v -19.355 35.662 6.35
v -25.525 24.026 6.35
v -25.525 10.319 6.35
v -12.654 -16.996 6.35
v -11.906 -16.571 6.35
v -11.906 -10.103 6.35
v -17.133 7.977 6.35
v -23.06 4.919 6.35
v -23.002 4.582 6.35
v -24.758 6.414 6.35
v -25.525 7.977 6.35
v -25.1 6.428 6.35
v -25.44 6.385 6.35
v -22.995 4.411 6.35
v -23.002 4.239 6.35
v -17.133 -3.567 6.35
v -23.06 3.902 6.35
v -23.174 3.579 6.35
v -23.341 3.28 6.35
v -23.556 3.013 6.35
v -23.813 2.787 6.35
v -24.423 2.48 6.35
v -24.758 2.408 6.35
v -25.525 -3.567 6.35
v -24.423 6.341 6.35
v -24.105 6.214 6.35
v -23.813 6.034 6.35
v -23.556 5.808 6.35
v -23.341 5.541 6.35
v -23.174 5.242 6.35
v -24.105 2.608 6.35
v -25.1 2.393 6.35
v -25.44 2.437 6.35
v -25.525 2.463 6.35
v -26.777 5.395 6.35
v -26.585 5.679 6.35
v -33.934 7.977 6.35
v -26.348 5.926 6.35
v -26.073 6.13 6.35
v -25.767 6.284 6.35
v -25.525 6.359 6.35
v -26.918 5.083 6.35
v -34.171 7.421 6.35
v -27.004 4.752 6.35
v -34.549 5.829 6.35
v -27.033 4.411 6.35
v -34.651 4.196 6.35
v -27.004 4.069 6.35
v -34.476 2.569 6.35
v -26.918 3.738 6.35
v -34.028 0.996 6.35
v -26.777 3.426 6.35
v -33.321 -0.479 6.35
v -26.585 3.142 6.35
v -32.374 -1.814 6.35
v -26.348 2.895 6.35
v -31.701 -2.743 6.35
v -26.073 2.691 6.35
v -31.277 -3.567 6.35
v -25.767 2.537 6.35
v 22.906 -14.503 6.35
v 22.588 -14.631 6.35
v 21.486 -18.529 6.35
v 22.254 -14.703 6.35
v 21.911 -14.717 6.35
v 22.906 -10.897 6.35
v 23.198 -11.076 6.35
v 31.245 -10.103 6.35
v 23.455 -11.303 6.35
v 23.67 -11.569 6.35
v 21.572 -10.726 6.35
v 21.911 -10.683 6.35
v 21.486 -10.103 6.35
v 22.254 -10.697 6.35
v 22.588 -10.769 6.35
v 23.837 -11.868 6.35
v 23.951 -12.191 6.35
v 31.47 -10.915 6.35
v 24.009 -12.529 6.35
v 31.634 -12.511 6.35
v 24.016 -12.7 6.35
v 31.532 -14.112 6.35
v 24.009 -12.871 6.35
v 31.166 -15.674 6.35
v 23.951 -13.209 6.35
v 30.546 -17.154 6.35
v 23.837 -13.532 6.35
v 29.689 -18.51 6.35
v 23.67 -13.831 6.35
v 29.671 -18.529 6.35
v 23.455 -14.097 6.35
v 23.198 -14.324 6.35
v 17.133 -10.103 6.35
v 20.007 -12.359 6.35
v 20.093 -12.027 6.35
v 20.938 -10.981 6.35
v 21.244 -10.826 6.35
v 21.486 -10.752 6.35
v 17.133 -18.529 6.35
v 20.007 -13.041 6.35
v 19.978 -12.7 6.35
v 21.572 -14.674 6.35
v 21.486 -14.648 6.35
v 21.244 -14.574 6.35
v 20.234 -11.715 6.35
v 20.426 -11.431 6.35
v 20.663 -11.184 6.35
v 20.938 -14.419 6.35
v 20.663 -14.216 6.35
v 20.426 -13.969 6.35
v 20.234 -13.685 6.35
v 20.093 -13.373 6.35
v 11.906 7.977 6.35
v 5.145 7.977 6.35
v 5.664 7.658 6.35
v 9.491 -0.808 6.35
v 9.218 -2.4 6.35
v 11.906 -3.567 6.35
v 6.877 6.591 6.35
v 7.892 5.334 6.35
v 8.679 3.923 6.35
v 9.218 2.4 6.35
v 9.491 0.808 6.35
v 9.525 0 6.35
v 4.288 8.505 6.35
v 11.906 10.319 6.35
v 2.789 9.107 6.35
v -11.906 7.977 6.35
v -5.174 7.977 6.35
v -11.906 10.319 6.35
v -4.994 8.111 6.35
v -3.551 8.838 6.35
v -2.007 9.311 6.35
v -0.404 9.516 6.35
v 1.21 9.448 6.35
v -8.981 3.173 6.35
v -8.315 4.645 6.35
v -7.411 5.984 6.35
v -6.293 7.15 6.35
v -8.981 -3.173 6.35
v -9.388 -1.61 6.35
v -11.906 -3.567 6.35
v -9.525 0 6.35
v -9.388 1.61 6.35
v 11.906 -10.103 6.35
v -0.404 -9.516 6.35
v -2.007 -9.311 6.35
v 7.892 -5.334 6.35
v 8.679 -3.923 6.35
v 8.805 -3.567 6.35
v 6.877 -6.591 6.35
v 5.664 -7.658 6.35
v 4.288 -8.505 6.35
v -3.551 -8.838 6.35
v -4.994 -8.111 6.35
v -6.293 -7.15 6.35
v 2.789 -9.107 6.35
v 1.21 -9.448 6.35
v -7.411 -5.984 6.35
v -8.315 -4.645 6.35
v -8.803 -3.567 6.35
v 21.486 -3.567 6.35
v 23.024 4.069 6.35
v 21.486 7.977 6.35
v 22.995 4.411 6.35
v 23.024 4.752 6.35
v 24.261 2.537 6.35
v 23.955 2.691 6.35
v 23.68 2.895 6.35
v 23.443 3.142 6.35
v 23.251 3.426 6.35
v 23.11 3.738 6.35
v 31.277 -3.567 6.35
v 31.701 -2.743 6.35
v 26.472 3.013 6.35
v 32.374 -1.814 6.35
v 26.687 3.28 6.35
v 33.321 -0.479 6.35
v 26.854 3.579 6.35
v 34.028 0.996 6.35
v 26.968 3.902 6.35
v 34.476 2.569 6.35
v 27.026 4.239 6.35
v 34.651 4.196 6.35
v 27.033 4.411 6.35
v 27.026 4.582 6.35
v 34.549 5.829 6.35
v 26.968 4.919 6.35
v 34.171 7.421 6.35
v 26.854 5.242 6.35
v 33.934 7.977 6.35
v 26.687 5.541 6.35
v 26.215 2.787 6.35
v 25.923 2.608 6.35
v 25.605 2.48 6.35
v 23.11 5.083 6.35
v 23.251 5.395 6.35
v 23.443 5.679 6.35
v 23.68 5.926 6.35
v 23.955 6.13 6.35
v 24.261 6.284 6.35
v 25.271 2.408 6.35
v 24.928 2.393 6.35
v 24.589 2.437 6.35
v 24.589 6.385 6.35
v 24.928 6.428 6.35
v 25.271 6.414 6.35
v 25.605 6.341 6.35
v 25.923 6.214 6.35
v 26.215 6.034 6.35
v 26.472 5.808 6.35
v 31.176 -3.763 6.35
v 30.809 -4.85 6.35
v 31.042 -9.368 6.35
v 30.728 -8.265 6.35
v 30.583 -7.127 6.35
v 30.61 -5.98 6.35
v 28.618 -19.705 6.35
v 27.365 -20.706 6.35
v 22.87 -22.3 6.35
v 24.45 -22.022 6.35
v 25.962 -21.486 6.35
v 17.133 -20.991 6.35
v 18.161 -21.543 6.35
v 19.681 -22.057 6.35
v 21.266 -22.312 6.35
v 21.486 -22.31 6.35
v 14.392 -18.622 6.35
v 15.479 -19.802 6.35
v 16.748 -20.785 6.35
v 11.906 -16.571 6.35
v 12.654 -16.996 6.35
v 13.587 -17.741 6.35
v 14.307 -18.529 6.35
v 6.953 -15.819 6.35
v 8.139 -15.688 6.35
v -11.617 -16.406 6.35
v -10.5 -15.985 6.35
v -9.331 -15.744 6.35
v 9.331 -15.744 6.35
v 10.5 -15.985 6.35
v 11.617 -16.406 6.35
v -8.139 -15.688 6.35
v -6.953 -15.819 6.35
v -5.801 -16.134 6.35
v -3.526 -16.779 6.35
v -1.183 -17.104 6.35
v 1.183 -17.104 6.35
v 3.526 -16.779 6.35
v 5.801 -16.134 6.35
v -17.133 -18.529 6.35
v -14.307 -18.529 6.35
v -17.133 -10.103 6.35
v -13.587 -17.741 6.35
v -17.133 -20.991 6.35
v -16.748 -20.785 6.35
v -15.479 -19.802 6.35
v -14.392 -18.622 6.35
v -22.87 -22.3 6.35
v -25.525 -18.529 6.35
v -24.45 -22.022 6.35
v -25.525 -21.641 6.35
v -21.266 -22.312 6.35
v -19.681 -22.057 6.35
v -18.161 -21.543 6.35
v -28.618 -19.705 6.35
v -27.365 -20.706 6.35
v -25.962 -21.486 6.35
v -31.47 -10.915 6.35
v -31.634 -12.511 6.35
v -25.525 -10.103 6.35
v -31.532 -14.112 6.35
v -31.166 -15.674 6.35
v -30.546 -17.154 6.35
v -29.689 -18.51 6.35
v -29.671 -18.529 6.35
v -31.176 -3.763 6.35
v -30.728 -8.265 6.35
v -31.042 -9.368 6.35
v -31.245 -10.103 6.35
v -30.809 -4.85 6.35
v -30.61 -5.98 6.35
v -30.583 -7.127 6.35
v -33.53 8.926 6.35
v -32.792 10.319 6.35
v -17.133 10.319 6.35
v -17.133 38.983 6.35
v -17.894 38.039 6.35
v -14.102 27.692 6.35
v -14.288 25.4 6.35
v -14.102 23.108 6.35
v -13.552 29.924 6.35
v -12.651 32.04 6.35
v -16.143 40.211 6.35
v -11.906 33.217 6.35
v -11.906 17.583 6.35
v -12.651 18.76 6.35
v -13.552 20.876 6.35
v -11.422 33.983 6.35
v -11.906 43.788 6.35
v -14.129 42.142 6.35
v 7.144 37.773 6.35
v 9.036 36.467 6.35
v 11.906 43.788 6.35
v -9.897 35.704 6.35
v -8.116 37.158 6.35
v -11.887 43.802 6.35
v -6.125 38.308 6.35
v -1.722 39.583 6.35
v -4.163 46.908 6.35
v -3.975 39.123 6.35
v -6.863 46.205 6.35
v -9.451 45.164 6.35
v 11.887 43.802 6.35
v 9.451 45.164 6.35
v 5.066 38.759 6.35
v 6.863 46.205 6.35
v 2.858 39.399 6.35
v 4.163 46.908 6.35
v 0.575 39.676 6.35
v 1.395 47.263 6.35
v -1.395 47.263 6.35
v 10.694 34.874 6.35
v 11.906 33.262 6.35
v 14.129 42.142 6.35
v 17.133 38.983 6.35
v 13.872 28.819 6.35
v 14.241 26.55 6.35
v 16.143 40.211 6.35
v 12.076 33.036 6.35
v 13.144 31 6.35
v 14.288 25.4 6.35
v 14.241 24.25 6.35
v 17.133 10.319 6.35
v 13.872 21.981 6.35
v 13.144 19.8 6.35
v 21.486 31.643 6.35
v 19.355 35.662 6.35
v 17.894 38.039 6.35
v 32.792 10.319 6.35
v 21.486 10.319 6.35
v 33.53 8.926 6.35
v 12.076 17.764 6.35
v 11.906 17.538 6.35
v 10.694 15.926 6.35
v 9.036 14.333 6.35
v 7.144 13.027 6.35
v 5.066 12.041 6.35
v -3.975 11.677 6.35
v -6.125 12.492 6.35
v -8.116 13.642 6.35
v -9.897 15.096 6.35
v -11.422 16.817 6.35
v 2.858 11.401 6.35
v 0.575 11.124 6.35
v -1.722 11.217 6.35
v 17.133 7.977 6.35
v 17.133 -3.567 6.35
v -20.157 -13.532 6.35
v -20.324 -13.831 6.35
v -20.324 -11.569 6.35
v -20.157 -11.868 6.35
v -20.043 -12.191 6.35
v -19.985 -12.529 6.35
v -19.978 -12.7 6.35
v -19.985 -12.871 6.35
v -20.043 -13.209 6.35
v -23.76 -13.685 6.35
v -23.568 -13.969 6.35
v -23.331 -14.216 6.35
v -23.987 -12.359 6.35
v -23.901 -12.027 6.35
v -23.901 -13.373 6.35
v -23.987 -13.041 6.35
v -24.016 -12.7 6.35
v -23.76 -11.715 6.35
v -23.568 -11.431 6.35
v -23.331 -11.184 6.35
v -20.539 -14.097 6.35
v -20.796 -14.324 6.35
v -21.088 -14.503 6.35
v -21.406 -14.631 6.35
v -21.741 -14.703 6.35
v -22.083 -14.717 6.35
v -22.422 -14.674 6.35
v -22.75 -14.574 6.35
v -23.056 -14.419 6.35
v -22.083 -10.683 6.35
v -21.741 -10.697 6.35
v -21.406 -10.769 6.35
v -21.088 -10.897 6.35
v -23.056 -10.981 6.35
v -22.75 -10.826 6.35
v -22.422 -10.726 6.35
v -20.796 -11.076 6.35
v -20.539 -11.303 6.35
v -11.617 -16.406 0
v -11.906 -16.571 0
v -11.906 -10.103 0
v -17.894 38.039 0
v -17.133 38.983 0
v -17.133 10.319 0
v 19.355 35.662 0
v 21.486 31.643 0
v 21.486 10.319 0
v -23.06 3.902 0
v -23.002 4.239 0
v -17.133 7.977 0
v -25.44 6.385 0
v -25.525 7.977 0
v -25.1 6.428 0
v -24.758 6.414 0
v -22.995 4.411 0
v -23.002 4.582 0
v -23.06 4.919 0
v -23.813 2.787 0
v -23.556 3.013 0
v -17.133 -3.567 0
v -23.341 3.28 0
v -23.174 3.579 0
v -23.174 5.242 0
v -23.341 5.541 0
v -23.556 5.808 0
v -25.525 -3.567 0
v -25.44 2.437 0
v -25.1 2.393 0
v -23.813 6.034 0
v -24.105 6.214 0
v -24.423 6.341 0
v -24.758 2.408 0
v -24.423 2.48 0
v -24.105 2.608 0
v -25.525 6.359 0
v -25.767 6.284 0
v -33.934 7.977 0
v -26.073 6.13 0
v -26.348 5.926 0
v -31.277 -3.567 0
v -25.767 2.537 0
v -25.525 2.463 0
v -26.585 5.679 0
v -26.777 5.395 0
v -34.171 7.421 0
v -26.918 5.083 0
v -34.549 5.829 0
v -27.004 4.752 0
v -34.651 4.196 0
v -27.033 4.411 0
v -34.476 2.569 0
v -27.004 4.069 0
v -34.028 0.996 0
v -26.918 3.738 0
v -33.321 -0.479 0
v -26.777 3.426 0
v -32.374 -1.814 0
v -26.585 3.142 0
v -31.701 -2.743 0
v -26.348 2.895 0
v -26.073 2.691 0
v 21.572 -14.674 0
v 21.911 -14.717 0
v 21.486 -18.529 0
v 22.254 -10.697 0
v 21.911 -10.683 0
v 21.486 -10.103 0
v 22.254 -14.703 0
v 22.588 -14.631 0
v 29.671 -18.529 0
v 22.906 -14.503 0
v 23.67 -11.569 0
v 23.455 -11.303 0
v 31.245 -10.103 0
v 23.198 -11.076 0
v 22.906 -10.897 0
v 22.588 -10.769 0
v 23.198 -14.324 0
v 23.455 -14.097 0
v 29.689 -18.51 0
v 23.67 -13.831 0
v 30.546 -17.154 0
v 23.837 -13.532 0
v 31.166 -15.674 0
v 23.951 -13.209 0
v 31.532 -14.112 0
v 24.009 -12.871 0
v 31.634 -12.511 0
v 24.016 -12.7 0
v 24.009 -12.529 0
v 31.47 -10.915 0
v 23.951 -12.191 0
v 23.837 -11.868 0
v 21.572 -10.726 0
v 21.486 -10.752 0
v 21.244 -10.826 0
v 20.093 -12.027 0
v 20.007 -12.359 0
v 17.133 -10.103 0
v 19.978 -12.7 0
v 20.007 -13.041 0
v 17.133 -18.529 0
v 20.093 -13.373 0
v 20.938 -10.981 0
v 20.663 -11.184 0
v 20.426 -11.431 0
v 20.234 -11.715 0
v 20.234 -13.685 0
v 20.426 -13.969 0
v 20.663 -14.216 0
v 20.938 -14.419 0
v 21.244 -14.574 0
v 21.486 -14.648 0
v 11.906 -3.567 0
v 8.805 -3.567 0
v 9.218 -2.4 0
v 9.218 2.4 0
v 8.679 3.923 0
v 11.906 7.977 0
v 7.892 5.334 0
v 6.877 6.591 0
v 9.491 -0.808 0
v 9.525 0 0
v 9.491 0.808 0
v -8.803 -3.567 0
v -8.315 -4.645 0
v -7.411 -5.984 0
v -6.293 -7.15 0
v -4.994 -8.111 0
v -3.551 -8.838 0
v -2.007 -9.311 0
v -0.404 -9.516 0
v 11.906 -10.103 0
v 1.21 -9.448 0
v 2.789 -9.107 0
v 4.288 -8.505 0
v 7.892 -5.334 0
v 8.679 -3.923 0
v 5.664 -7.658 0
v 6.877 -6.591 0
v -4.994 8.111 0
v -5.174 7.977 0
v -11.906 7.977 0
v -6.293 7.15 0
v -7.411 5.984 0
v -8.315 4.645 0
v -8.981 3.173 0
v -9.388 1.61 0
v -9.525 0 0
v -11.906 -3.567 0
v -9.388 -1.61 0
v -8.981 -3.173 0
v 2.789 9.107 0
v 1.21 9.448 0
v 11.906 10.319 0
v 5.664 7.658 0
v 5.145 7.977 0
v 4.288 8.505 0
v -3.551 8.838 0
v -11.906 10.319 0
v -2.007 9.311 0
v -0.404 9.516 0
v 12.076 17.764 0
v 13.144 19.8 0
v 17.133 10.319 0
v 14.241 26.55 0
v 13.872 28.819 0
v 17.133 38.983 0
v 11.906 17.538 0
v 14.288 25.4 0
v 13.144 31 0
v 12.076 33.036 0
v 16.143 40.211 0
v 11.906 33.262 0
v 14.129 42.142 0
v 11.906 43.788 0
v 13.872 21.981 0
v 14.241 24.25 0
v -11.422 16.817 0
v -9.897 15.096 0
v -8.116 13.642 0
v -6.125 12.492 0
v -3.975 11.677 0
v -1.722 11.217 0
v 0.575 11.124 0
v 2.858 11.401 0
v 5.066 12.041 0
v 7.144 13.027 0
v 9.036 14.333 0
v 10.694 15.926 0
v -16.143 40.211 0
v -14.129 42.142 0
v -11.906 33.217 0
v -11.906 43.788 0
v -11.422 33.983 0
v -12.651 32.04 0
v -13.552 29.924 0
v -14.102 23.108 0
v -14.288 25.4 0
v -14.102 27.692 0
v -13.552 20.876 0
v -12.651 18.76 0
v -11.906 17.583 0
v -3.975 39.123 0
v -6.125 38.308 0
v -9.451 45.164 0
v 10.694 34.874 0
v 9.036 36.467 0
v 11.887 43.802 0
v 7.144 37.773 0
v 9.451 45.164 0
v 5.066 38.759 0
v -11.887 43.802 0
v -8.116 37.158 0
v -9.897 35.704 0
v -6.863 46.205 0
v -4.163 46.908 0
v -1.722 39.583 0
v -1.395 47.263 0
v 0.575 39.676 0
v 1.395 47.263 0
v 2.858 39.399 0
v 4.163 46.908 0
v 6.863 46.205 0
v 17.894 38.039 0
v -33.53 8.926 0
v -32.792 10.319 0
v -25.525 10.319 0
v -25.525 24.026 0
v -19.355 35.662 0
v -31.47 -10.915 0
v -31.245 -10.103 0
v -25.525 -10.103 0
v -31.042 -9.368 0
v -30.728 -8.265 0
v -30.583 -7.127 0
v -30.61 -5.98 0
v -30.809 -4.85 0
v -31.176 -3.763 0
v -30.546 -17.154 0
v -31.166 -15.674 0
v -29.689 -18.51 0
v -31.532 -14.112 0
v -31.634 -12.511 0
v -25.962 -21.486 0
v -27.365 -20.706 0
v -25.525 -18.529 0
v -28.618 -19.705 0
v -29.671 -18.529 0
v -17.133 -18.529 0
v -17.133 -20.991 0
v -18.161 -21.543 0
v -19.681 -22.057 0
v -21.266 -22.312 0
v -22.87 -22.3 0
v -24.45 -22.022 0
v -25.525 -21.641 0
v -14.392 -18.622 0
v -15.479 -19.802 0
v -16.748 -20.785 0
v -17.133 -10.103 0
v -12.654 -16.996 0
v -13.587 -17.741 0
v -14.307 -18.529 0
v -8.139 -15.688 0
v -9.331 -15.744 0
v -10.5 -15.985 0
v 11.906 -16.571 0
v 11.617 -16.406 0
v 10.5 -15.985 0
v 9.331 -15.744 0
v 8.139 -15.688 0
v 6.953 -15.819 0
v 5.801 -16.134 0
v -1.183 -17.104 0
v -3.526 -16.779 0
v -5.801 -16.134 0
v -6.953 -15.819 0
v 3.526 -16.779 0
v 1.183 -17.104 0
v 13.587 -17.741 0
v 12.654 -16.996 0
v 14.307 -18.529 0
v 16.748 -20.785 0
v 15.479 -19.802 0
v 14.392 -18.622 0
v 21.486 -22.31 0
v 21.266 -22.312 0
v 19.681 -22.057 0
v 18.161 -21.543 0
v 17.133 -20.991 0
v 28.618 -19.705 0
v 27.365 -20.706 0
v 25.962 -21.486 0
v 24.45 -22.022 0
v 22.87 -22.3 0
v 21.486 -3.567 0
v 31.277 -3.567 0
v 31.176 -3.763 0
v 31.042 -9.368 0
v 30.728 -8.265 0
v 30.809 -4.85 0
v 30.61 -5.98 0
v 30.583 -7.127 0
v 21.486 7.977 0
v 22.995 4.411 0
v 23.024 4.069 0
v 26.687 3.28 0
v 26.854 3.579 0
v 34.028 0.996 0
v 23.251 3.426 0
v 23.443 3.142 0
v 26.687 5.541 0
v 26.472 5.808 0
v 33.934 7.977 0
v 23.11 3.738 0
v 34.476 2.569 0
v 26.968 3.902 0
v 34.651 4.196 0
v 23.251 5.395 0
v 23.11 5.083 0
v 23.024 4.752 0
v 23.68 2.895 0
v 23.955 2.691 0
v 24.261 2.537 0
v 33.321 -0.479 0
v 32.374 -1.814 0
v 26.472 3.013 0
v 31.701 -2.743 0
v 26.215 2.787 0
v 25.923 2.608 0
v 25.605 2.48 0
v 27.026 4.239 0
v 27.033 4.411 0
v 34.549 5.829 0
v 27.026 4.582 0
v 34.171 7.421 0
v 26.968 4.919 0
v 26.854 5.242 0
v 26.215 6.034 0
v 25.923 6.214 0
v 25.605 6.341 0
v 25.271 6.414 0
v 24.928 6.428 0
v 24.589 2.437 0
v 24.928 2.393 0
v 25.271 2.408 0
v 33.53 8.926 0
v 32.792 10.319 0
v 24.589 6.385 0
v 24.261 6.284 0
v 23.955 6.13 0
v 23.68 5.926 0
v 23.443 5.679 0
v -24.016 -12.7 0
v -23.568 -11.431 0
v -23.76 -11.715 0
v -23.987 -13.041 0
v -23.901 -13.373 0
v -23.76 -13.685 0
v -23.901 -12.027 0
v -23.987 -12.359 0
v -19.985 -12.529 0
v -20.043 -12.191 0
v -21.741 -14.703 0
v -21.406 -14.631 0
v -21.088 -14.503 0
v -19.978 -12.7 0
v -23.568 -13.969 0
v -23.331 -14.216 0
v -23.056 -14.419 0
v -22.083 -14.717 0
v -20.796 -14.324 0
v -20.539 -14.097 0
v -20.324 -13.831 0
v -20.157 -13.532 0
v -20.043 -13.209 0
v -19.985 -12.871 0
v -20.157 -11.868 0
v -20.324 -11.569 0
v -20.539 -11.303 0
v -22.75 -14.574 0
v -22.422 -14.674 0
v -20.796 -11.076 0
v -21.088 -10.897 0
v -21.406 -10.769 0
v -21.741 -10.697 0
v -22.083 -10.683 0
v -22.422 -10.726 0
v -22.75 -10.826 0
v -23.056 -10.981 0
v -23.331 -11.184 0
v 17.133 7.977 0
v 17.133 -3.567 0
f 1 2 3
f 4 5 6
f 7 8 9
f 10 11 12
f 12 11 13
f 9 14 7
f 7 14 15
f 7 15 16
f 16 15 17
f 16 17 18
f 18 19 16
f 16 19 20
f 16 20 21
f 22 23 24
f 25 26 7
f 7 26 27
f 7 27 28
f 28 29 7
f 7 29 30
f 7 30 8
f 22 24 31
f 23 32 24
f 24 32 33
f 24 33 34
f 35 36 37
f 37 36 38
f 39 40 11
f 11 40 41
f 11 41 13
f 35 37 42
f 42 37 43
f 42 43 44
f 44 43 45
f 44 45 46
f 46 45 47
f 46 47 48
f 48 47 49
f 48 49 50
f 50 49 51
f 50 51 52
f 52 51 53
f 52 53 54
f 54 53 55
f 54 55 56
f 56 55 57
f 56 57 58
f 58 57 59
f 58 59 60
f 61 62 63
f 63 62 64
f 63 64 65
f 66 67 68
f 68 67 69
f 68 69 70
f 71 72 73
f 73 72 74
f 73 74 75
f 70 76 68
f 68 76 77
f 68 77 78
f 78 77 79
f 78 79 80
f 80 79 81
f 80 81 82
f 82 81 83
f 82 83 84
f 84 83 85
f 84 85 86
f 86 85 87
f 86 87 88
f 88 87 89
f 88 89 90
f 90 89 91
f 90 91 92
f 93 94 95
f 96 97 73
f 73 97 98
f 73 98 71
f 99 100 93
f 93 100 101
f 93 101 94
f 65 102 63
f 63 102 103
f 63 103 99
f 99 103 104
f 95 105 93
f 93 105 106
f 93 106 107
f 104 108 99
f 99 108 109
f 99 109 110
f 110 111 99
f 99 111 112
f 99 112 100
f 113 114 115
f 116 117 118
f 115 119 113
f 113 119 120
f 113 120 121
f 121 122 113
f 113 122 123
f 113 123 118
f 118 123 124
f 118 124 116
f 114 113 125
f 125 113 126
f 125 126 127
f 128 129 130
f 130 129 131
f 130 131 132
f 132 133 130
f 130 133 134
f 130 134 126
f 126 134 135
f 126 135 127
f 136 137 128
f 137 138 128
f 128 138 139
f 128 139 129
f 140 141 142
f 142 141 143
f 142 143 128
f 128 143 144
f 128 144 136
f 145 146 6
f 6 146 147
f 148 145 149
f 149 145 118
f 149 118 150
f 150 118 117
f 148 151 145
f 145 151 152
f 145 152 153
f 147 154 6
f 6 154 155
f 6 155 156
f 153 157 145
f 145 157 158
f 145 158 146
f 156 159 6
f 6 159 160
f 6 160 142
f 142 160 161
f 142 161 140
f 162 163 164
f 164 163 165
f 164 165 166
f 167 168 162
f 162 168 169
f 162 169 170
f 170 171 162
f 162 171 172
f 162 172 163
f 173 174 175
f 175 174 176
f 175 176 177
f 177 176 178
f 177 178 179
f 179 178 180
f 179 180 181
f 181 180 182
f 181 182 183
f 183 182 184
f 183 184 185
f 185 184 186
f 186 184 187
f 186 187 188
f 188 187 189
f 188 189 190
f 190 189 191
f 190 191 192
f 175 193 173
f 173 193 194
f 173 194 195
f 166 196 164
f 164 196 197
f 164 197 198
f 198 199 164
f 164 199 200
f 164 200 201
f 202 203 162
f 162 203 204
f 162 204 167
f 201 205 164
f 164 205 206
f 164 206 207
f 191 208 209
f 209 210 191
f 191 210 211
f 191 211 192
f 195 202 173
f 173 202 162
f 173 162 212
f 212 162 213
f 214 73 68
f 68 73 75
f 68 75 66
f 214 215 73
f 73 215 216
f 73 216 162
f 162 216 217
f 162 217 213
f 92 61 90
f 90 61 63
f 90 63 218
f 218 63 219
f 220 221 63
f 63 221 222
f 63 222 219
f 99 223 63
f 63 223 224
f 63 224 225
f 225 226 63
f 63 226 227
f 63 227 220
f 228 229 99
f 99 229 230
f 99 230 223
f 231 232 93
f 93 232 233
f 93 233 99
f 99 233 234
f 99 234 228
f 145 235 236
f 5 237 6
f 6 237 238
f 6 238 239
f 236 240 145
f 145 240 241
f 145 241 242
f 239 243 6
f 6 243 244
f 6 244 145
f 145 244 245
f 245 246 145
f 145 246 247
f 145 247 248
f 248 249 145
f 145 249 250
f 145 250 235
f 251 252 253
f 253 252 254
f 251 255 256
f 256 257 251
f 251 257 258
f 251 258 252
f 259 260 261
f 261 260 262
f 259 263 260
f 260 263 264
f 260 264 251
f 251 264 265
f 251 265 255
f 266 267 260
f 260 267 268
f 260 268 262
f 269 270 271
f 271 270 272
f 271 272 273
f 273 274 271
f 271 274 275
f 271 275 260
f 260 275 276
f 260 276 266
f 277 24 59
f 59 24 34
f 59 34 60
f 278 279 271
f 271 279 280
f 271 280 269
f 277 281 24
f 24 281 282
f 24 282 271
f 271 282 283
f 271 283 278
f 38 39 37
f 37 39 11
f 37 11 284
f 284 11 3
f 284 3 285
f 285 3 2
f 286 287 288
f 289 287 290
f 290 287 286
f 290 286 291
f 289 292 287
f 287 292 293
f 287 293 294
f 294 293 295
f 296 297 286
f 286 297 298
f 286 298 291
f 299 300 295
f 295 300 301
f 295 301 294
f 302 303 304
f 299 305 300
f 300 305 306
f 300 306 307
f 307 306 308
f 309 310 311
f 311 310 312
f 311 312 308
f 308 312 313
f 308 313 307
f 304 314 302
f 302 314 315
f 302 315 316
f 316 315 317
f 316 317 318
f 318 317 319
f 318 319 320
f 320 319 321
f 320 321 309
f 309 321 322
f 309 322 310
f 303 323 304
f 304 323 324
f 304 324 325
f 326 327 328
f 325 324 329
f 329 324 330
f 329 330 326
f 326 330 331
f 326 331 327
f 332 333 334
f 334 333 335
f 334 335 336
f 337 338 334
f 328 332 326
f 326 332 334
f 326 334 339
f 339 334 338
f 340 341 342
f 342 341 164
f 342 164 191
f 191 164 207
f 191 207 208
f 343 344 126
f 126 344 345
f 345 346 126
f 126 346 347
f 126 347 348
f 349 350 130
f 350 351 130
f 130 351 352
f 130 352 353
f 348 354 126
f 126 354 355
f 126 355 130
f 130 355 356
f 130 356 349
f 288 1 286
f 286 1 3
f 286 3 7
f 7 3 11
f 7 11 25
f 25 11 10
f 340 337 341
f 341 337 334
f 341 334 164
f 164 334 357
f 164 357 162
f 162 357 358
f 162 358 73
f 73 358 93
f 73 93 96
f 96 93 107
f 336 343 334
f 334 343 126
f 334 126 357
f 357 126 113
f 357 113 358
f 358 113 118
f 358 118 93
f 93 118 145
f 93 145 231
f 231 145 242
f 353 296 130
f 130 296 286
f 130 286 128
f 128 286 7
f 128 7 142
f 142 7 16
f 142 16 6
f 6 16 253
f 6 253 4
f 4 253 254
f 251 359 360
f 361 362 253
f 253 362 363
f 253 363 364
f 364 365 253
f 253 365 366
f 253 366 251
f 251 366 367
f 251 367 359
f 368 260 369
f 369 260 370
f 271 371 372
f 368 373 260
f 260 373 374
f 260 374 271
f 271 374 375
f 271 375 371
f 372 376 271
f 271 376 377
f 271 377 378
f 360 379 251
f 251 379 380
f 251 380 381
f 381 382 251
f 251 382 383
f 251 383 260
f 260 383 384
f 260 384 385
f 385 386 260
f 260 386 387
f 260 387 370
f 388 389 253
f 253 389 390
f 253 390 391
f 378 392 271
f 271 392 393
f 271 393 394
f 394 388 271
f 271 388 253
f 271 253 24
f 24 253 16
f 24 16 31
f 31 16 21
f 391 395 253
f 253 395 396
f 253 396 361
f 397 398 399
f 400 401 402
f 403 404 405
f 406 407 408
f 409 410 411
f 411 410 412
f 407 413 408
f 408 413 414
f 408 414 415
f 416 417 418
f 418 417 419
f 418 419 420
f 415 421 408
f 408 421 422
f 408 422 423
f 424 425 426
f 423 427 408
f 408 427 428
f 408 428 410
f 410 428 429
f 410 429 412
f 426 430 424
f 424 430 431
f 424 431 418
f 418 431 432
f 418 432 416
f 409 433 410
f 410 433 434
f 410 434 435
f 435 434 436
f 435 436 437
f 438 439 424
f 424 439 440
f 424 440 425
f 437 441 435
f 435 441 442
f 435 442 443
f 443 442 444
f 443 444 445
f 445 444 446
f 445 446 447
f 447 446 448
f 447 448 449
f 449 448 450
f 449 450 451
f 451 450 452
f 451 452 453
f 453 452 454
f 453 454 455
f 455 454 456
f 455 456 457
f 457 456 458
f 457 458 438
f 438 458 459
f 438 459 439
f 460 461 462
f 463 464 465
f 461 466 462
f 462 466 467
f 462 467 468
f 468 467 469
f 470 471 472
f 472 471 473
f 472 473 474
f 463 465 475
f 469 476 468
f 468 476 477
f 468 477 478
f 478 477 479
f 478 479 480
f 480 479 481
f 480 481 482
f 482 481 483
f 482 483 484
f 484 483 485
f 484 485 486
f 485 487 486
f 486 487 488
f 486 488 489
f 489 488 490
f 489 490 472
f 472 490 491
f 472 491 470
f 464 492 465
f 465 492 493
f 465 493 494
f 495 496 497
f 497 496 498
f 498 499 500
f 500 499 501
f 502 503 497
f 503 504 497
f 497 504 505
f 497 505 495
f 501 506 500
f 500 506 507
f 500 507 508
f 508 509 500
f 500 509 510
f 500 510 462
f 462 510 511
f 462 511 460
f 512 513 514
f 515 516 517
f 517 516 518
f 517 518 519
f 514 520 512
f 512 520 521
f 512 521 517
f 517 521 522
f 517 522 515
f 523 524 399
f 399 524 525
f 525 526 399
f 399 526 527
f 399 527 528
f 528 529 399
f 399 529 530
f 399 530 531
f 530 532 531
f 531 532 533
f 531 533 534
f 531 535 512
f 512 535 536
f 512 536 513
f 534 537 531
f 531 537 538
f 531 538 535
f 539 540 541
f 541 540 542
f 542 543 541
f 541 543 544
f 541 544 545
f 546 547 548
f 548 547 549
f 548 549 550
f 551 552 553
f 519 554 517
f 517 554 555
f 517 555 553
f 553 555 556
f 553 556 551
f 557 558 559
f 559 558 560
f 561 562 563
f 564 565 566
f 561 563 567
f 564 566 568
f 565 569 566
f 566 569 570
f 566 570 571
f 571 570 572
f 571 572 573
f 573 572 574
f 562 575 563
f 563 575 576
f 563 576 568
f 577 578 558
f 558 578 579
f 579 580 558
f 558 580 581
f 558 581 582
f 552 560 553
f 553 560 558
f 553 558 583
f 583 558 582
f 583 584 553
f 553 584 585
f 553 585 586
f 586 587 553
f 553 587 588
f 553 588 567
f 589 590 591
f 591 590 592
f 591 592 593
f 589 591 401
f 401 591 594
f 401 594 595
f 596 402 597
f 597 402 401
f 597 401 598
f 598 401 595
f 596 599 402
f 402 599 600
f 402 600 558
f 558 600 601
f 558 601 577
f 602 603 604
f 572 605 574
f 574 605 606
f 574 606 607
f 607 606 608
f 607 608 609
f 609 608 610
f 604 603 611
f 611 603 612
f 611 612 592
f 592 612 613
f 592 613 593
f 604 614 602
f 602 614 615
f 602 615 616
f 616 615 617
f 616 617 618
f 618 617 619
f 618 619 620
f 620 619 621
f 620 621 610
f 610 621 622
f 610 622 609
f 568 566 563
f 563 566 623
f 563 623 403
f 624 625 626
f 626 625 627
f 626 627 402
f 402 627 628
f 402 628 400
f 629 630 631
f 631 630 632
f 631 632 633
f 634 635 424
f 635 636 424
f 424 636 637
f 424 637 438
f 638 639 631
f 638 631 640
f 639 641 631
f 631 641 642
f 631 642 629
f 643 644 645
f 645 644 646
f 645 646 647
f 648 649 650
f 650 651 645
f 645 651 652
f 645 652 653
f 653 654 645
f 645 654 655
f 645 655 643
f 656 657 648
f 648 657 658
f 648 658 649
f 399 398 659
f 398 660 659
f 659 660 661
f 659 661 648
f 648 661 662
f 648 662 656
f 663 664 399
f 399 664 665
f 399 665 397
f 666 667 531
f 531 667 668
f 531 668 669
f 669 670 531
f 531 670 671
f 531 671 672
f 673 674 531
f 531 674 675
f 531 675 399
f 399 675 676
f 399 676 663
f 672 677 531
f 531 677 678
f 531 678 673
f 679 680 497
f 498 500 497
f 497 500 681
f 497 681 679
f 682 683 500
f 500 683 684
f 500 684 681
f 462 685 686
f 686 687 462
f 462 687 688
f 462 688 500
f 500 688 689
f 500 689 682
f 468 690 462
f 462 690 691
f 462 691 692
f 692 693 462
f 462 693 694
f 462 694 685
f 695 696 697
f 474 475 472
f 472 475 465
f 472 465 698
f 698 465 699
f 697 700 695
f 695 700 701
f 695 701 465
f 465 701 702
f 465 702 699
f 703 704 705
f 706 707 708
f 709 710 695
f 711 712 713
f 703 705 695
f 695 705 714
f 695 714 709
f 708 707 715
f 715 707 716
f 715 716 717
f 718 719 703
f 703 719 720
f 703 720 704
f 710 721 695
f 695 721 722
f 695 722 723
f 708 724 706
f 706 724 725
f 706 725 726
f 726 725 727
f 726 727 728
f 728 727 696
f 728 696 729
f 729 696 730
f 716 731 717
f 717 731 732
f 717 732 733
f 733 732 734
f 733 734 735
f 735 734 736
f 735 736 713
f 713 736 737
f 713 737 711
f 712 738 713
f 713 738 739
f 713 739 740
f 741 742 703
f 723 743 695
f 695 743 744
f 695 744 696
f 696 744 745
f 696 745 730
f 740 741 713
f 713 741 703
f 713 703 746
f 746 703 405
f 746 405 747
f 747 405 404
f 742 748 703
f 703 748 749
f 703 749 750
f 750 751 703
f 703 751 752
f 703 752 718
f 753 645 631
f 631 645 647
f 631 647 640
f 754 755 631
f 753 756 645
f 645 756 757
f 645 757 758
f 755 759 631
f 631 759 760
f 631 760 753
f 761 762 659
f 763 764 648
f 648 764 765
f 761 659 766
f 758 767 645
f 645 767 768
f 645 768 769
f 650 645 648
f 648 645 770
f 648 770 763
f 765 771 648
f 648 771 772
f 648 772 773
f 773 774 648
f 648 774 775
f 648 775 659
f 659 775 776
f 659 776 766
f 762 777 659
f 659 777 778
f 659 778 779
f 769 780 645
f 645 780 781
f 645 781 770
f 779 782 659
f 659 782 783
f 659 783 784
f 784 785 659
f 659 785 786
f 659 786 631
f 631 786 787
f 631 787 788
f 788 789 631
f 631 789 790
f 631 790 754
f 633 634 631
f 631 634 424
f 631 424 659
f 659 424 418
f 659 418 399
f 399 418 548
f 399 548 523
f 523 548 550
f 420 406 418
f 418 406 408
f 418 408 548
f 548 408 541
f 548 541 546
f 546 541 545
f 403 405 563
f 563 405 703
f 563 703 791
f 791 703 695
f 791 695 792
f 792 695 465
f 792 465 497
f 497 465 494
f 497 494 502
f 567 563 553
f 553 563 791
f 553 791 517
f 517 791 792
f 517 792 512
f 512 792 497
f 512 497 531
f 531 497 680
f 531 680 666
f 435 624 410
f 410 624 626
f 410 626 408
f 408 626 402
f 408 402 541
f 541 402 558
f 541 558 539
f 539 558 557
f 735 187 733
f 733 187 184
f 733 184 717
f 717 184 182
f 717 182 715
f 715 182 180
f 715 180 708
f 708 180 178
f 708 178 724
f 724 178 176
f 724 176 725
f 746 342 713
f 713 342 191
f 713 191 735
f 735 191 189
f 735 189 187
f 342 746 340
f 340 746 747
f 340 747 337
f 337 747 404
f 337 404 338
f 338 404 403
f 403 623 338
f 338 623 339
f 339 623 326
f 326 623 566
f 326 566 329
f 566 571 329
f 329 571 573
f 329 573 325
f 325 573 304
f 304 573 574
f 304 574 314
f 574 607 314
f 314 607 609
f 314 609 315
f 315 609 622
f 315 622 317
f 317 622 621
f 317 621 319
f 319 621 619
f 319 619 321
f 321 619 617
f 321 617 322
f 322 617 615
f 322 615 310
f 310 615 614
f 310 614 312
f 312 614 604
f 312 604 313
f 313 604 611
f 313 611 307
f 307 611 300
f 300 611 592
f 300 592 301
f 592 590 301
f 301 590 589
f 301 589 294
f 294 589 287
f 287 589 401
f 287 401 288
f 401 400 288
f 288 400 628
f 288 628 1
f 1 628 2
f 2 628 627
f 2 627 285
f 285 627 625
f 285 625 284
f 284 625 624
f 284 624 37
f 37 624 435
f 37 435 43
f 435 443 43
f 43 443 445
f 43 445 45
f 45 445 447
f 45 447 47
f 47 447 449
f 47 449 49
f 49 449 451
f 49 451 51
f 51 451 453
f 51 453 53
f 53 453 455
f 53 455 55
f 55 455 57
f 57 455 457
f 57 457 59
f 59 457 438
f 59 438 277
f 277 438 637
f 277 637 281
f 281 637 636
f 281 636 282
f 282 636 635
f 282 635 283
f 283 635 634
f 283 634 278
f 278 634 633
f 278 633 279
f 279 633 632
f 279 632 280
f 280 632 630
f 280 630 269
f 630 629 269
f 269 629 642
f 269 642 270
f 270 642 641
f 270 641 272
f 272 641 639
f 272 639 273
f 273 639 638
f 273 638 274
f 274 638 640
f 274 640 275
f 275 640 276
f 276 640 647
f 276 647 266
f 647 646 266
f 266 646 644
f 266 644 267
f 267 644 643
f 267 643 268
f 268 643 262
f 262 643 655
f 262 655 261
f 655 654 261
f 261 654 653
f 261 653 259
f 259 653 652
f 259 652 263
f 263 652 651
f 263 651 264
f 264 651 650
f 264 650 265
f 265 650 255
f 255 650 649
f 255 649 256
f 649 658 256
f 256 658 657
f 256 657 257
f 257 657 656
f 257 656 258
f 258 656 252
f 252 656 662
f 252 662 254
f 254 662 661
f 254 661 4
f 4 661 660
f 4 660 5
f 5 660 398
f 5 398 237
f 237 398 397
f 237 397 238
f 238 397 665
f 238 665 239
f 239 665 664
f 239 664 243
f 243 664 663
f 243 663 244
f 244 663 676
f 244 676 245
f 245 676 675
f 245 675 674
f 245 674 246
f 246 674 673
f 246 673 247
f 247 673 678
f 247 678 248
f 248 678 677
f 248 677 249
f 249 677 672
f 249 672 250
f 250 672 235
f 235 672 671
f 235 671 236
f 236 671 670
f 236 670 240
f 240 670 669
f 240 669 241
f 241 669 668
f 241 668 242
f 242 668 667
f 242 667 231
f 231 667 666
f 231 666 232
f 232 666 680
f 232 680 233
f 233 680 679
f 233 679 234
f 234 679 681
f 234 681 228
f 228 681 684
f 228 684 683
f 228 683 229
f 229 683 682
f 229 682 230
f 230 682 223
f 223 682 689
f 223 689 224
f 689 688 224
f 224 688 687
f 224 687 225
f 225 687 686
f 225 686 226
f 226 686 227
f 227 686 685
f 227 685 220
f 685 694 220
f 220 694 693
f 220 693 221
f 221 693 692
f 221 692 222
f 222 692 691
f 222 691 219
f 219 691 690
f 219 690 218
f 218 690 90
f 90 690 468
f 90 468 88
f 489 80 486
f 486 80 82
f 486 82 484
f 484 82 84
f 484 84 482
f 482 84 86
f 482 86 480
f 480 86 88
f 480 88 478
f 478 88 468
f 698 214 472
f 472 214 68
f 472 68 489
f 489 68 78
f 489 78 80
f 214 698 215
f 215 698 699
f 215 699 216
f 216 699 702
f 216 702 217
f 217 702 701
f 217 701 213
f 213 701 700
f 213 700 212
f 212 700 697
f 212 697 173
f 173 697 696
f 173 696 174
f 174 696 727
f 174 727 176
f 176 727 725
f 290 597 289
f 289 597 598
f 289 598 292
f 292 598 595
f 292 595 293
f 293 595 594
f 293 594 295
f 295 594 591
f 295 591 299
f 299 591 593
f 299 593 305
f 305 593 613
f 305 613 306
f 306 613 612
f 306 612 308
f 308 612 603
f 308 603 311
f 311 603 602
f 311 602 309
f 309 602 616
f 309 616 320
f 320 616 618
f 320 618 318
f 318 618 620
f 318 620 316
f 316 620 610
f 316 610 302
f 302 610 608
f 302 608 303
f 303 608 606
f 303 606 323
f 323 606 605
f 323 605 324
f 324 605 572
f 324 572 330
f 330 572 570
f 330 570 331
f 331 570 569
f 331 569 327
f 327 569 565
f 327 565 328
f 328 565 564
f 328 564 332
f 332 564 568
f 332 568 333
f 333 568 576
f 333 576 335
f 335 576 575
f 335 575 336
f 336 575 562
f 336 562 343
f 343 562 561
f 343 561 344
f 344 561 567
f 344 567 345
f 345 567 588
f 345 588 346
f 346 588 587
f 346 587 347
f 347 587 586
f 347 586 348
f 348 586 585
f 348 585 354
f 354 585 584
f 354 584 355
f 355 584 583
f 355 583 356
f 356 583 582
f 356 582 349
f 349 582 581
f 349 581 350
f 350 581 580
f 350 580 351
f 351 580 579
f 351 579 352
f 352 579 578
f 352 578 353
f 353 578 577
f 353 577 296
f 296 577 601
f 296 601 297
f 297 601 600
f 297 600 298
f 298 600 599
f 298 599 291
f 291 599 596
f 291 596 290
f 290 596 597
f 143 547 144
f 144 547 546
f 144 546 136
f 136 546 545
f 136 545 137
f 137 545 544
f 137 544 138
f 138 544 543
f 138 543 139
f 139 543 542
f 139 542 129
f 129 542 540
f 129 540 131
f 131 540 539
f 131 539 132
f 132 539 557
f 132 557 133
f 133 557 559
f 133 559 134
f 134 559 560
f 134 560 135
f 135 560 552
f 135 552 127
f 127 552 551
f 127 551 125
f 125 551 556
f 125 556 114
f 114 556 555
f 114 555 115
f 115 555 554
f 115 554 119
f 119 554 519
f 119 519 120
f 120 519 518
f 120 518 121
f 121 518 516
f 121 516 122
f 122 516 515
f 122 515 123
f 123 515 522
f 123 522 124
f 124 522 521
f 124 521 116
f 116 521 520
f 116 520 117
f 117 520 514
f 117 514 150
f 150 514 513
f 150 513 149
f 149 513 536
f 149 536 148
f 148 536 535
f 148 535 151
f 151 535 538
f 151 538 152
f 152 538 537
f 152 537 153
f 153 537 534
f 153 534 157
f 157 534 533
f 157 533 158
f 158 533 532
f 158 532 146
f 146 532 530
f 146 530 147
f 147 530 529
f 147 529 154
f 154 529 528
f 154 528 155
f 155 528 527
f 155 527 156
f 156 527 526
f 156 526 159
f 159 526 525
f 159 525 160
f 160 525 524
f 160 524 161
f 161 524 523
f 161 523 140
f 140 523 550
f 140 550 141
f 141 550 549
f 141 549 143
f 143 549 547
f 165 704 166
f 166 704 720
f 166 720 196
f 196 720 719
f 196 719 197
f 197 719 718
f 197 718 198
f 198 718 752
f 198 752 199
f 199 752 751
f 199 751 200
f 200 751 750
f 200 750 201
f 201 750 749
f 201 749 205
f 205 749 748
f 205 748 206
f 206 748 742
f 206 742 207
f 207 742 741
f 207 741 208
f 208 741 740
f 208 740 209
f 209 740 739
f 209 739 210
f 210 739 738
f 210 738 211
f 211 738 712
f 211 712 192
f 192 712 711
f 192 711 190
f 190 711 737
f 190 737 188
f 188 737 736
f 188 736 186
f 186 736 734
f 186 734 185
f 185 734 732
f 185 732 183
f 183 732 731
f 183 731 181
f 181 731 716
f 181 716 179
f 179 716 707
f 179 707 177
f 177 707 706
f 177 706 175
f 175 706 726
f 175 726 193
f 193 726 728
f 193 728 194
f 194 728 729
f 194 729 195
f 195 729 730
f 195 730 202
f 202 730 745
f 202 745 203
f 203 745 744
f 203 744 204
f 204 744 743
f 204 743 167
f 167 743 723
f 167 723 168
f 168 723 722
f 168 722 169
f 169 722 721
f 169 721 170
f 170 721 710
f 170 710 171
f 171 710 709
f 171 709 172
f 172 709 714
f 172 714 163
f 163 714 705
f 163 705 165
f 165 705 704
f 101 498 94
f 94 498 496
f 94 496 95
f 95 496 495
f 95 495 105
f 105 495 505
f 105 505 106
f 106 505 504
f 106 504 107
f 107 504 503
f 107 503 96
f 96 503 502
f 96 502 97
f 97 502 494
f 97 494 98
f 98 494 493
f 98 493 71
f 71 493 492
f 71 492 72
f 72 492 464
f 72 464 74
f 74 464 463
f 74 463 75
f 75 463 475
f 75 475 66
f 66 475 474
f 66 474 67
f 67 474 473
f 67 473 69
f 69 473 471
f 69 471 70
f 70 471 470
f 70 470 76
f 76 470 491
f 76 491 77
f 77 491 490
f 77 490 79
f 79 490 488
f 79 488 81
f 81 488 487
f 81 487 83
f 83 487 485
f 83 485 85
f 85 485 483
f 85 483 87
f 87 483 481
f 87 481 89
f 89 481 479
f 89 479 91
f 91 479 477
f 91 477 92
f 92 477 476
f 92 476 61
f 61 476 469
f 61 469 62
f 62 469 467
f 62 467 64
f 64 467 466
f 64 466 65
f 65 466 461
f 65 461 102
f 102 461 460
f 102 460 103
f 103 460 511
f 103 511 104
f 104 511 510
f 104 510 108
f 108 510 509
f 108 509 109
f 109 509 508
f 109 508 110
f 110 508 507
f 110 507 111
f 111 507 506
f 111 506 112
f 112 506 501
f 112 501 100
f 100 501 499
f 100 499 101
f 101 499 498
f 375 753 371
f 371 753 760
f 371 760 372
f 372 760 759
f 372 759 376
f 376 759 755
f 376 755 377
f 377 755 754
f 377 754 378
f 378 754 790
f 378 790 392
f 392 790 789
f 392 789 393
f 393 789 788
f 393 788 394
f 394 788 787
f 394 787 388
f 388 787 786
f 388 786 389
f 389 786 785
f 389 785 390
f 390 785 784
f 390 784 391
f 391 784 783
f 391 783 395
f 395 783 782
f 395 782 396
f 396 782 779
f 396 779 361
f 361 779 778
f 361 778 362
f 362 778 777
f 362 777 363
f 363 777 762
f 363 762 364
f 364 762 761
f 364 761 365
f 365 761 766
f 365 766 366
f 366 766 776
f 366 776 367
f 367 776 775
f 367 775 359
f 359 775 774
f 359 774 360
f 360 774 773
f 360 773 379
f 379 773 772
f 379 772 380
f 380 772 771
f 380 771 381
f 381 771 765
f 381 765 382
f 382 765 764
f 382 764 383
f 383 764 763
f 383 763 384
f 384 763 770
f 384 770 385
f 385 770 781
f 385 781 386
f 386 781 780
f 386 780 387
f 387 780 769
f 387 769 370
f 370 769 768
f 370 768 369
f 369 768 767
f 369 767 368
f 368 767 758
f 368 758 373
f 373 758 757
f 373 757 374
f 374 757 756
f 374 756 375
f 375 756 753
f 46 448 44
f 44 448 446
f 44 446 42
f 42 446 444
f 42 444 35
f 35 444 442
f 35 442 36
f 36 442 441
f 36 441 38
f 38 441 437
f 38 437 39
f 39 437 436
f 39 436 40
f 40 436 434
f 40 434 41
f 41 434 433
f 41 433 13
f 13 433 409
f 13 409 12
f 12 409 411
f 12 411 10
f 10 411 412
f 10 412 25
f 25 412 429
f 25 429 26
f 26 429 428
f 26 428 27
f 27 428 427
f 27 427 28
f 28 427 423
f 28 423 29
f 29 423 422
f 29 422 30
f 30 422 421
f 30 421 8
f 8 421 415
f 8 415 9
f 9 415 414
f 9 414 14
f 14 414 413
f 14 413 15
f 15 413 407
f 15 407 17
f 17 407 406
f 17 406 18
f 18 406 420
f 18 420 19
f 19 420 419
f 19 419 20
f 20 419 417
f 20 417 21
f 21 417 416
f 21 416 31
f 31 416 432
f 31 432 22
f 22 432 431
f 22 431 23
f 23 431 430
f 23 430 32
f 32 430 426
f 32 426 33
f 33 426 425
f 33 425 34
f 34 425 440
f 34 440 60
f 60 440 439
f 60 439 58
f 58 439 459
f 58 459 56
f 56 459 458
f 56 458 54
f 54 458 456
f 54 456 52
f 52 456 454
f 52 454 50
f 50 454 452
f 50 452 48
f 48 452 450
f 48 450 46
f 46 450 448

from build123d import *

# Parameters (mm, degrees)
SKETCH1_R           = 2.0193
SKETCH1_R_2         = 14.2875
SKETCH1_R_3         = 9.525
BOSS_EXTRUDE1_DEPTH = 6.35


with BuildPart() as part:
    # Sketch1 → Boss-Extrude1 (new body)
    with BuildSketch(Plane.XY):
        with BuildLine():
            Line((-33.53048127, 8.925931463), (-19.355373509, 35.661972159))
            ThreePointArc((-19.355373509, 35.661972159), (0, 47.3075), (19.355373509, 35.661972159))
            Line((19.355373509, 35.661972159), (33.53048127, 8.925931463))
            ThreePointArc((33.53048127, 8.925931463), (34.598037392, 3.378882244), (32.374264723, -1.813830556))
            ThreePointArc((32.374264723, -1.813830556), (30.688328298, -5.411180272), (31.04222425, -9.368207471))
            ThreePointArc((31.04222425, -9.368207471), (26.679838242, -21.125411227), (14.391737161, -18.62244825))
            ThreePointArc((14.391737161, -18.62244825), (10.500045405, -15.985191191), (5.801286392, -16.133694592))
            ThreePointArc((5.801286392, -16.133694592), (0, -17.145), (-5.801286392, -16.133694592))
            ThreePointArc((-5.801286392, -16.133694592), (-10.500045405, -15.985191191), (-14.391737161, -18.62244825))
            ThreePointArc((-14.391737161, -18.62244825), (-26.679838242, -21.125411227), (-31.04222425, -9.368207471))
            ThreePointArc((-31.04222425, -9.368207471), (-30.688328298, -5.411180272), (-32.374264723, -1.813830556))
            ThreePointArc((-32.374264723, -1.813830556), (-34.598037392, 3.378882244), (-33.53048127, 8.925931463))
        make_face()
        with Locations((25.014116927, 4.410663713)):
            Circle(SKETCH1_R, mode=Mode.SUBTRACT)
        with Locations((21.997045256, -12.7)):
            Circle(SKETCH1_R, mode=Mode.SUBTRACT)
        with Locations((-21.997045256, -12.7)):
            Circle(SKETCH1_R, mode=Mode.SUBTRACT)
        with Locations((-25.014116927, 4.410663713)):
            Circle(SKETCH1_R, mode=Mode.SUBTRACT)
        with Locations((0, 25.4)):
            Circle(SKETCH1_R_2, mode=Mode.SUBTRACT)
        Circle(SKETCH1_R_3, mode=Mode.SUBTRACT)
    extrude(amount=BOSS_EXTRUDE1_DEPTH)


solid = part.part
